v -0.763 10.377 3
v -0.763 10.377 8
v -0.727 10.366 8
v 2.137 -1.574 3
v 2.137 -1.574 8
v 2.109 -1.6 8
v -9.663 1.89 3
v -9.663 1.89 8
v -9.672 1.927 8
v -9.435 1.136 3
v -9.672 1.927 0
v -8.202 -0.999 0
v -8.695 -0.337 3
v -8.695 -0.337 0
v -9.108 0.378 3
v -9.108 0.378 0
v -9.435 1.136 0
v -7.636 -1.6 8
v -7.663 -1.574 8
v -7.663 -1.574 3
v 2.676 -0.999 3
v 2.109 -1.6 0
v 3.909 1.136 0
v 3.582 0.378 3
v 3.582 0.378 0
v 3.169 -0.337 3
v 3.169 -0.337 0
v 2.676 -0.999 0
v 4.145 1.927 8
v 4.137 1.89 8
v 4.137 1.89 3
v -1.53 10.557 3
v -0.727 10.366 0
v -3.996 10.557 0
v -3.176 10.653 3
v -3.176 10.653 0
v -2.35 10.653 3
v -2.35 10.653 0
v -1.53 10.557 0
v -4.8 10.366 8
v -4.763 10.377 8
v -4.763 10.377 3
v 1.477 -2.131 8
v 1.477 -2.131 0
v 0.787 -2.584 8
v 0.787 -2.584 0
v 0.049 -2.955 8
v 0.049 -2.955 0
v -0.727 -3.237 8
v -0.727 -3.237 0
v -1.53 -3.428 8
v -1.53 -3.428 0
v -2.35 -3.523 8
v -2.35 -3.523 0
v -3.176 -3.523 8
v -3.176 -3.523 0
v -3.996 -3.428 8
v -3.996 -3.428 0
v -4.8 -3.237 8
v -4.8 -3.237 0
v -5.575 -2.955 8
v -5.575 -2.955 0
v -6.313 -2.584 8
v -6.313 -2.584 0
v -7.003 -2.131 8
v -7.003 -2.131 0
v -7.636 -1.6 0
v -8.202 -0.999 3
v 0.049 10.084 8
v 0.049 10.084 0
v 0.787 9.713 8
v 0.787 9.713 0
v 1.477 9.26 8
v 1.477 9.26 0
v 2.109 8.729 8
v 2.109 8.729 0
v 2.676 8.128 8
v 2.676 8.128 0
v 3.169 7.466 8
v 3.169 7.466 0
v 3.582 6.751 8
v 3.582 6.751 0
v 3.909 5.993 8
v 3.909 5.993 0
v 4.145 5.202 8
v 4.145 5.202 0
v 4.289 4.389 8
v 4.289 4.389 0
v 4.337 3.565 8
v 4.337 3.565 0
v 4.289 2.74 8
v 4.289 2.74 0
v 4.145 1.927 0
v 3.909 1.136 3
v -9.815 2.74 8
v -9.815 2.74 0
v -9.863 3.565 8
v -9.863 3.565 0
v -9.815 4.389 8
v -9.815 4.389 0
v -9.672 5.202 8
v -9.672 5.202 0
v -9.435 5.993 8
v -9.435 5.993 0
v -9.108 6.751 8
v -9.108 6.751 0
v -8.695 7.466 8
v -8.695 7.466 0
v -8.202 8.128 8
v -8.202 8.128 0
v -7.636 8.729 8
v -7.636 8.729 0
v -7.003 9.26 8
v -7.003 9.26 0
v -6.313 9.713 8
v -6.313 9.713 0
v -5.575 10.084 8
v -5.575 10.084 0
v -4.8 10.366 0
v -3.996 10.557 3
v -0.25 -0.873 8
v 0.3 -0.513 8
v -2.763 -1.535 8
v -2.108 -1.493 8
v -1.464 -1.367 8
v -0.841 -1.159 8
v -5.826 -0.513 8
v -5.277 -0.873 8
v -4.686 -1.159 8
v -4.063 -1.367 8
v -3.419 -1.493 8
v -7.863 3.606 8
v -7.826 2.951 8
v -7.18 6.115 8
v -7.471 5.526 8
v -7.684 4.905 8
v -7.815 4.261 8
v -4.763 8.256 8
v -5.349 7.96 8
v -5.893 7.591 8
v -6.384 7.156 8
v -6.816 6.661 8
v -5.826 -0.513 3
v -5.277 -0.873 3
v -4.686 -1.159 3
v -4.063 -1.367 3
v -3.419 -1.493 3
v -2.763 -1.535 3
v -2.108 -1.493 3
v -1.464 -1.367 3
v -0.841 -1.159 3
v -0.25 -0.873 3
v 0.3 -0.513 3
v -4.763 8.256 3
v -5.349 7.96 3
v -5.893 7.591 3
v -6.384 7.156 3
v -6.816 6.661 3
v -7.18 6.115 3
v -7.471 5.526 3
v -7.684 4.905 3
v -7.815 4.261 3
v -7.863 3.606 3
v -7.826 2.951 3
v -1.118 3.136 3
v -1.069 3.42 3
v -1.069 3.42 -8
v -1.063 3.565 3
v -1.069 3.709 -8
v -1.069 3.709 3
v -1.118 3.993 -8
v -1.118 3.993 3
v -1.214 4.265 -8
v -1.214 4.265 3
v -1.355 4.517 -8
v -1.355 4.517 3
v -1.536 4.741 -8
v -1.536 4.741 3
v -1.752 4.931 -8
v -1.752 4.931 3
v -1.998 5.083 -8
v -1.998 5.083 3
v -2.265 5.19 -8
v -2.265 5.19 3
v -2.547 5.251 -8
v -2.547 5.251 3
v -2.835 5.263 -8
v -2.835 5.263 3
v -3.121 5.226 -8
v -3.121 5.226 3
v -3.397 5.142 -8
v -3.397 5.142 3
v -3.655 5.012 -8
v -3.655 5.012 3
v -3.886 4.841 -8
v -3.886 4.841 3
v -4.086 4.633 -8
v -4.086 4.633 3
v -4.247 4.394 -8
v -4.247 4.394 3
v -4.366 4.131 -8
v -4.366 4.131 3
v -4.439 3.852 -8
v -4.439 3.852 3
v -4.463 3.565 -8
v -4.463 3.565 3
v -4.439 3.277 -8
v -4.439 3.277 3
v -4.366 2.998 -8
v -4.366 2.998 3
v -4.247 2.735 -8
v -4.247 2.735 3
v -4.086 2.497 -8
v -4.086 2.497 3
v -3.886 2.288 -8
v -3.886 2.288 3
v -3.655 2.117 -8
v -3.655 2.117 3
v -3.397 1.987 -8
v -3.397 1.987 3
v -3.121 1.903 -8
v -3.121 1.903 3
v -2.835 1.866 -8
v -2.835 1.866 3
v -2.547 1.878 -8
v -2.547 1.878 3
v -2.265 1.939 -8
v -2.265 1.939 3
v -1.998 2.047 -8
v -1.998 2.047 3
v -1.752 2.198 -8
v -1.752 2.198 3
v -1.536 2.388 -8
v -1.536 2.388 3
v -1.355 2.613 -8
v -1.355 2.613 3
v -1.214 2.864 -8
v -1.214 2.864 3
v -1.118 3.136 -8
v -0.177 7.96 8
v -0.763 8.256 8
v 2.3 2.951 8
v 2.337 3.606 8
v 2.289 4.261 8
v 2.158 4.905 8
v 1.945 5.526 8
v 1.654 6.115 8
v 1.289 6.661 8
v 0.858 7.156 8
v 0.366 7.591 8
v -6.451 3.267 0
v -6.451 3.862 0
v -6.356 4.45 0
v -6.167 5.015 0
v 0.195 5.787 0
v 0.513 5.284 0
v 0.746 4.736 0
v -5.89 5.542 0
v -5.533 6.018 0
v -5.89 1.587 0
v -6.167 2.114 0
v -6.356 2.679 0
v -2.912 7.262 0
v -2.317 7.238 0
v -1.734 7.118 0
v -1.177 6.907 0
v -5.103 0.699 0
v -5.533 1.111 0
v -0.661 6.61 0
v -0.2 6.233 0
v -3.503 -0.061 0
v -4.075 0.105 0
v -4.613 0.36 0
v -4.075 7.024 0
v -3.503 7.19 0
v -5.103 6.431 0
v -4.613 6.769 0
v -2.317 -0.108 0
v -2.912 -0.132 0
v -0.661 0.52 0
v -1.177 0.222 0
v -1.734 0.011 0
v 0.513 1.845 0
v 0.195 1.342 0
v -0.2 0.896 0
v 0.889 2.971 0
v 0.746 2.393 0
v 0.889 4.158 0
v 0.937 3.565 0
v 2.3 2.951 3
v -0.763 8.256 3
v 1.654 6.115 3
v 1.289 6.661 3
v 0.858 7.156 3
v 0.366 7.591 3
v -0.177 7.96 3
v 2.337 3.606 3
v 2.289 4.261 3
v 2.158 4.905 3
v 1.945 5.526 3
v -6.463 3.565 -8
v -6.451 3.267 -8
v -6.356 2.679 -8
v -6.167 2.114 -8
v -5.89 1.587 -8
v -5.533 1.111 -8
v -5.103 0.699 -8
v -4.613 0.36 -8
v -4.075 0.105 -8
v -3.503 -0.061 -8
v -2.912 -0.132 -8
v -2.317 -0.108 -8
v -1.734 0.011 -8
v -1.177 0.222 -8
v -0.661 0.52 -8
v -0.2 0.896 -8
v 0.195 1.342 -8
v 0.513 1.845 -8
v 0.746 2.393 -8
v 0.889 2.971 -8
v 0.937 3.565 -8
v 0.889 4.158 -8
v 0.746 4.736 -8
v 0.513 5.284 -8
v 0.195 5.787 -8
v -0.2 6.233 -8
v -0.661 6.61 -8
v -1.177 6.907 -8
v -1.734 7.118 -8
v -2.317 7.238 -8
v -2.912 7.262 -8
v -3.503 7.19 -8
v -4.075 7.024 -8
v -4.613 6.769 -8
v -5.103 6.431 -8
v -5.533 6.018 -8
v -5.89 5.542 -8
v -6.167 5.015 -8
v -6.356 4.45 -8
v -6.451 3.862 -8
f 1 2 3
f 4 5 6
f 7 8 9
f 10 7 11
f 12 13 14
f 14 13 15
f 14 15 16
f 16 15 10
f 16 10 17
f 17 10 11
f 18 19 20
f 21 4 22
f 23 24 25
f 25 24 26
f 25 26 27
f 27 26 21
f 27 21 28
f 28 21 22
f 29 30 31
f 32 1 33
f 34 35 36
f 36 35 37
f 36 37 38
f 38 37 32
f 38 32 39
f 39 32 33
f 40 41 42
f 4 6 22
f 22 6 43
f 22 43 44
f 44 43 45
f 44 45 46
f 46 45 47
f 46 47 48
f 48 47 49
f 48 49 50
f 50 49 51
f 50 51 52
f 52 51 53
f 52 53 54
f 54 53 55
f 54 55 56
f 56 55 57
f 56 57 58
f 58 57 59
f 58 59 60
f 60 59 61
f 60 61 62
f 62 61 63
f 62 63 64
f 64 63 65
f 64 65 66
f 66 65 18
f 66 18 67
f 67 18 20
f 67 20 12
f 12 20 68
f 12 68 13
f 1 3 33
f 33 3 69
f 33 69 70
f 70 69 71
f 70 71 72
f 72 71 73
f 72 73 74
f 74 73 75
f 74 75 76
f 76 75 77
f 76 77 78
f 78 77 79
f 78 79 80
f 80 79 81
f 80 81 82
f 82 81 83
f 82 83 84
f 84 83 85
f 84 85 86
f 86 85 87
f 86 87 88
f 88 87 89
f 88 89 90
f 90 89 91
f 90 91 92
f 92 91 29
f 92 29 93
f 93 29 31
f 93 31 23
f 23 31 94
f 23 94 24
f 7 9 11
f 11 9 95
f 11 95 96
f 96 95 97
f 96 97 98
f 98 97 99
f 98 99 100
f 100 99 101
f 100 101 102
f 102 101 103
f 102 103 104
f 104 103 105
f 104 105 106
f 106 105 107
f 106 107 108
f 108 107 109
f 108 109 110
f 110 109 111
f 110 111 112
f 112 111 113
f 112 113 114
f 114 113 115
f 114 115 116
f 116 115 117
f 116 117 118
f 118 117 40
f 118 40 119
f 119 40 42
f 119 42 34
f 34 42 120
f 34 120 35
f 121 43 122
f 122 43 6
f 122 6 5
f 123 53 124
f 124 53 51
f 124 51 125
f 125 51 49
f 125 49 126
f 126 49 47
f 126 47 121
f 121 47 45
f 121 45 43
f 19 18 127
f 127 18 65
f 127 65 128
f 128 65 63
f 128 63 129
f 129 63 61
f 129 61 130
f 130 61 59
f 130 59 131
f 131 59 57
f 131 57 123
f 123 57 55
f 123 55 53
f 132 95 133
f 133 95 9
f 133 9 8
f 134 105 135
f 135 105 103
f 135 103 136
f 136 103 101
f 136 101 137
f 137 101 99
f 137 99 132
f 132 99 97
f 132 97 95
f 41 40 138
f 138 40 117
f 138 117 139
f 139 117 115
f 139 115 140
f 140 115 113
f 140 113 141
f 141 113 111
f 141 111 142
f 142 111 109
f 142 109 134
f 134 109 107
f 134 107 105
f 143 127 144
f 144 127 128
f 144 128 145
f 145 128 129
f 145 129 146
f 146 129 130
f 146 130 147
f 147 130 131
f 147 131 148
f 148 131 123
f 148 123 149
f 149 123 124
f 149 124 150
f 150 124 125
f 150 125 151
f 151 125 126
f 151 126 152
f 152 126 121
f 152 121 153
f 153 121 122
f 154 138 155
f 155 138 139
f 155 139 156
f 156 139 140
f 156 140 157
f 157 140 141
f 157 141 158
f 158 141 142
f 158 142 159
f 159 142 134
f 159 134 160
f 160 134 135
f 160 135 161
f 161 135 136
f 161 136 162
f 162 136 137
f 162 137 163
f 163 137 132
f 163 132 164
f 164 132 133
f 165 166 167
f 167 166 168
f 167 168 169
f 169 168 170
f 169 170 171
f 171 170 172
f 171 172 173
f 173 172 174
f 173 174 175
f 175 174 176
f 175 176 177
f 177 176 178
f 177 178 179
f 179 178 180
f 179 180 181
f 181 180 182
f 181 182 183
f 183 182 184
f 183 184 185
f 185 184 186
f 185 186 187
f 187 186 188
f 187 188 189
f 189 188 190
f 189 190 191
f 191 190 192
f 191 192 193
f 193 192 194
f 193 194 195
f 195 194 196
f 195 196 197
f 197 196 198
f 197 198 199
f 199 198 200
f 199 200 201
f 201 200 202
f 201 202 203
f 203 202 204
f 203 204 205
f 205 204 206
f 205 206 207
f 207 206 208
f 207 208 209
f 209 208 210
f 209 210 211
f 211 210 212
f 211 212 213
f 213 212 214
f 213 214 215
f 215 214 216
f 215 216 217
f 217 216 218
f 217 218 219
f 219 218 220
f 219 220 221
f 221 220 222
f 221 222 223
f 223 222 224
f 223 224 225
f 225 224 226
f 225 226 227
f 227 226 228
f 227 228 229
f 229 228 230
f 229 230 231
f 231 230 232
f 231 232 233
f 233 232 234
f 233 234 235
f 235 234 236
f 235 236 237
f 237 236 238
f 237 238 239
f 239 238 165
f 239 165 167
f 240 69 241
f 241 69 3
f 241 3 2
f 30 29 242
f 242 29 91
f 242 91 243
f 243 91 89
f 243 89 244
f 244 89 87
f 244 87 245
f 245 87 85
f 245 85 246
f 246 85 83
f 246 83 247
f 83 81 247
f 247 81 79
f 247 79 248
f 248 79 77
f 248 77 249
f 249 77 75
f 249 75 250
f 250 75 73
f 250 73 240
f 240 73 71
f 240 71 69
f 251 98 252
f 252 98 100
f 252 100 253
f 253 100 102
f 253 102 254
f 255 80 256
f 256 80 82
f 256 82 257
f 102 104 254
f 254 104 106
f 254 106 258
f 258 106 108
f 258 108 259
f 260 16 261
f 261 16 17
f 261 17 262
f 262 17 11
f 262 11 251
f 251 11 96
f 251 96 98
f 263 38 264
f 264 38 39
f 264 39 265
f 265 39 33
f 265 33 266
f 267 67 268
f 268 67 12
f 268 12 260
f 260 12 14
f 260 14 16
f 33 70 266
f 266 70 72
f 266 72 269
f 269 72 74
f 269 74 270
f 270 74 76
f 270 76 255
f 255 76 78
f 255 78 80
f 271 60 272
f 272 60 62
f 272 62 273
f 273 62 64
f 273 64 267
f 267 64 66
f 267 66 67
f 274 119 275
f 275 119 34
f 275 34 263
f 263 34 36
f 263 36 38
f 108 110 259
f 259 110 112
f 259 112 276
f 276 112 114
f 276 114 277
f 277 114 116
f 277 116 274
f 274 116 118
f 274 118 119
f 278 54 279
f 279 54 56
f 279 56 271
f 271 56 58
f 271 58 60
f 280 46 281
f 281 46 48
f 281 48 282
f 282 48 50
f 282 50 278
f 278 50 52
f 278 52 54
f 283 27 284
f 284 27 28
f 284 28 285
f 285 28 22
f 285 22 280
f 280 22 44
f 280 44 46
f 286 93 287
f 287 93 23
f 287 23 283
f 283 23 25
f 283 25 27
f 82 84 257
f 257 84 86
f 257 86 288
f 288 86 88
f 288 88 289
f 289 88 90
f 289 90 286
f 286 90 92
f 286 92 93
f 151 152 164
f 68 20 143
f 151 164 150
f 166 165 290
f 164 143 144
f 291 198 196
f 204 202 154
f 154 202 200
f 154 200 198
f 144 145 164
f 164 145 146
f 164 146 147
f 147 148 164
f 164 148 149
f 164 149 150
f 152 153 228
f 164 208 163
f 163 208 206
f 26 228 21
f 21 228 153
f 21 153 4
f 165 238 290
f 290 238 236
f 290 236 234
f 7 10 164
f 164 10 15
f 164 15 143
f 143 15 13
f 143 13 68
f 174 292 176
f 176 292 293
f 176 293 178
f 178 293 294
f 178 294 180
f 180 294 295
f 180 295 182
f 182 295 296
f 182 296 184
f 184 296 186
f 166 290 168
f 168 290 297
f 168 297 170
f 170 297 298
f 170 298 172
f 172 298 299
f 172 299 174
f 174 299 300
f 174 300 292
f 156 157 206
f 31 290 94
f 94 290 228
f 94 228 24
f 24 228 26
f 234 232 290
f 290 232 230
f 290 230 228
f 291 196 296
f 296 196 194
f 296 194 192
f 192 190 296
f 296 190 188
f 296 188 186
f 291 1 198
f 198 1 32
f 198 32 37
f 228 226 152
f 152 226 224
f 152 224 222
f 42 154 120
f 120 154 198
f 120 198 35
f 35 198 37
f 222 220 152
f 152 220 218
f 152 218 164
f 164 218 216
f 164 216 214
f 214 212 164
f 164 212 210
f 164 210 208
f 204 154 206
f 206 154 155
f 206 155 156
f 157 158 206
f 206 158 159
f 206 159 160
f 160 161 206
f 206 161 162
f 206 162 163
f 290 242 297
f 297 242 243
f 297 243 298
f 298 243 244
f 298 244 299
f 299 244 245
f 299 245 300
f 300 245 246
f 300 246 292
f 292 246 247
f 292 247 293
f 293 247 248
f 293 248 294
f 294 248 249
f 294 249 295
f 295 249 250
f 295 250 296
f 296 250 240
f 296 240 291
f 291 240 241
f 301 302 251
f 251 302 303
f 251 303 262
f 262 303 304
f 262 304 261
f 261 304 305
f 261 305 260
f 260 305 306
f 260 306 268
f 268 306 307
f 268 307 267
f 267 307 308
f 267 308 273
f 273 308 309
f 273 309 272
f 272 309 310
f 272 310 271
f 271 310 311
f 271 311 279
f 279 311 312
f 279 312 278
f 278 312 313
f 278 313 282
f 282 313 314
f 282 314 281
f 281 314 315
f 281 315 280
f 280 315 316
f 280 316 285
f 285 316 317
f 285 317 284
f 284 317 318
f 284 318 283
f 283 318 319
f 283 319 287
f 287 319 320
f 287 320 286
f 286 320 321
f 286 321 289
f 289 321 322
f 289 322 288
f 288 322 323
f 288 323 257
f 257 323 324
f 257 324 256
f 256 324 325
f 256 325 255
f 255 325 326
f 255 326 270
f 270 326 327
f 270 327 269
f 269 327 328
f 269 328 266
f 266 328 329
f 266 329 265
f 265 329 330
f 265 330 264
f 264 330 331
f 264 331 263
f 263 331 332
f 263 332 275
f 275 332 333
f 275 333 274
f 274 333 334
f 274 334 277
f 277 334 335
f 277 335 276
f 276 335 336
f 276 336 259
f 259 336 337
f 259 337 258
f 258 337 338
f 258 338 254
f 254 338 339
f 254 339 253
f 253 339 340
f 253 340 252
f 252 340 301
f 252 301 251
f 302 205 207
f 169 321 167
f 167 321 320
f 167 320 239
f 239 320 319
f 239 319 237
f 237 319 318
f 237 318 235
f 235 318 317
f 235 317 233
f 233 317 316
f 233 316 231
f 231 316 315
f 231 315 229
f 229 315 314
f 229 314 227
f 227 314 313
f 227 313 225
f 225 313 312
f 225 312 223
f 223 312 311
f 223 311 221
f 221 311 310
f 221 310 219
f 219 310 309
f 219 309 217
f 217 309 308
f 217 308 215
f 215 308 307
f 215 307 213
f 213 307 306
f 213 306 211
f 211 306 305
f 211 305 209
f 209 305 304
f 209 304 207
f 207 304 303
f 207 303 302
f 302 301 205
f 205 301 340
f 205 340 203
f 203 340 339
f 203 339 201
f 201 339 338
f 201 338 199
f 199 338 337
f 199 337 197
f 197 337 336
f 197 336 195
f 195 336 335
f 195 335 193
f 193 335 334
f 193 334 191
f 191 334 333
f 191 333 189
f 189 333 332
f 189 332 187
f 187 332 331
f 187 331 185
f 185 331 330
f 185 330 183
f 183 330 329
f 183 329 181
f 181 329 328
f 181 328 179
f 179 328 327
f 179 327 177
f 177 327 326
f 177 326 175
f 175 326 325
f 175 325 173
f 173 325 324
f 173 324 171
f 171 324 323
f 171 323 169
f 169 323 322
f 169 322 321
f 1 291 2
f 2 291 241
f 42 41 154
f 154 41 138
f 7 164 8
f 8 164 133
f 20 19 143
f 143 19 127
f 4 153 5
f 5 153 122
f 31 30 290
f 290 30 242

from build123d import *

# Parameters (mm, degrees)
SKETCH_1_R          = 7.1
EXTRUDE_1_DEPTH     = 8
SKETCH_2_R          = 1.7
CUT_EXTRUDE_1_DEPTH = 6
SKETCH_3_R          = 5.1
CUT_EXTRUDE_2_DEPTH = 5
SKETCH_4_R          = 3.7
SKETCH_4_R_2        = 1.7
EXTRUDE_2_DEPTH     = 8
CUT_EXTRUDE_4_DEPTH = 5


with BuildPart() as part:
    # 草图1 → 凸台-拉伸1 (new body)
    with BuildSketch(Plane.XY):
        with Locations((-2.763223282, 3.564558034)):
            Circle(SKETCH_1_R)
    extrude(amount=EXTRUDE_1_DEPTH)

    # 草图2 → 切除-拉伸1 (cut)
    with BuildSketch(Plane(origin=(0, 0, 0), x_dir=(-1, 0, 0), z_dir=(0, 0, -1))):
        with Locations((2.763223282, 3.564558034)):
            Circle(SKETCH_2_R)
    extrude(amount=-CUT_EXTRUDE_1_DEPTH, mode=Mode.SUBTRACT)

    # 草图3 → 切除-拉伸2 (cut)
    with BuildSketch(Plane.XY.offset(8)):
        with Locations((-2.763223282, 3.564558034)):
            Circle(SKETCH_3_R)
    extrude(amount=-CUT_EXTRUDE_2_DEPTH, mode=Mode.SUBTRACT)

    # 草图4 → 凸台-拉伸2 (add)
    with BuildSketch(Plane(origin=(0, 0, 0), x_dir=(-1, 0, 0), z_dir=(0, 0, -1))):
        with Locations((2.763223282, 3.564558034)):
            Circle(SKETCH_4_R)
        with Locations((2.763223282, 3.564558034)):
            Circle(SKETCH_4_R_2, mode=Mode.SUBTRACT)
    extrude(amount=EXTRUDE_2_DEPTH)

    # 草图5 → 切除-拉伸4 (cut)
    with BuildSketch(Plane.XY.offset(8)):
        with BuildLine():
            Line((-0.763223282, 4.719258572), (-0.763223282, 10.377046566))
            ThreePointArc((-0.763223282, 10.377046566), (-2.763223282, 10.664558034), (-4.763223282, 10.377046566))
            Line((-4.763223282, 10.377046566), (-4.763223282, 4.719258572))
            Line((-4.763223282, 4.719258572), (-9.663011414, 1.890364575))
            ThreePointArc((-9.663011414, 1.890364575), (-8.912003649, 0.014558034), (-7.663011414, -1.57373704))
            Line((-7.663011414, -1.57373704), (-2.763223282, 1.255156957))
            Line((-2.763223282, 1.255156957), (2.13656485, -1.57373704))
            ThreePointArc((2.13656485, -1.57373704), (3.385557085, 0.014558034), (4.13656485, 1.890364575))
            Line((4.13656485, 1.890364575), (-0.763223282, 4.719258572))
        make_face()
    extrude(amount=-CUT_EXTRUDE_4_DEPTH, mode=Mode.SUBTRACT)


solid = part.part
